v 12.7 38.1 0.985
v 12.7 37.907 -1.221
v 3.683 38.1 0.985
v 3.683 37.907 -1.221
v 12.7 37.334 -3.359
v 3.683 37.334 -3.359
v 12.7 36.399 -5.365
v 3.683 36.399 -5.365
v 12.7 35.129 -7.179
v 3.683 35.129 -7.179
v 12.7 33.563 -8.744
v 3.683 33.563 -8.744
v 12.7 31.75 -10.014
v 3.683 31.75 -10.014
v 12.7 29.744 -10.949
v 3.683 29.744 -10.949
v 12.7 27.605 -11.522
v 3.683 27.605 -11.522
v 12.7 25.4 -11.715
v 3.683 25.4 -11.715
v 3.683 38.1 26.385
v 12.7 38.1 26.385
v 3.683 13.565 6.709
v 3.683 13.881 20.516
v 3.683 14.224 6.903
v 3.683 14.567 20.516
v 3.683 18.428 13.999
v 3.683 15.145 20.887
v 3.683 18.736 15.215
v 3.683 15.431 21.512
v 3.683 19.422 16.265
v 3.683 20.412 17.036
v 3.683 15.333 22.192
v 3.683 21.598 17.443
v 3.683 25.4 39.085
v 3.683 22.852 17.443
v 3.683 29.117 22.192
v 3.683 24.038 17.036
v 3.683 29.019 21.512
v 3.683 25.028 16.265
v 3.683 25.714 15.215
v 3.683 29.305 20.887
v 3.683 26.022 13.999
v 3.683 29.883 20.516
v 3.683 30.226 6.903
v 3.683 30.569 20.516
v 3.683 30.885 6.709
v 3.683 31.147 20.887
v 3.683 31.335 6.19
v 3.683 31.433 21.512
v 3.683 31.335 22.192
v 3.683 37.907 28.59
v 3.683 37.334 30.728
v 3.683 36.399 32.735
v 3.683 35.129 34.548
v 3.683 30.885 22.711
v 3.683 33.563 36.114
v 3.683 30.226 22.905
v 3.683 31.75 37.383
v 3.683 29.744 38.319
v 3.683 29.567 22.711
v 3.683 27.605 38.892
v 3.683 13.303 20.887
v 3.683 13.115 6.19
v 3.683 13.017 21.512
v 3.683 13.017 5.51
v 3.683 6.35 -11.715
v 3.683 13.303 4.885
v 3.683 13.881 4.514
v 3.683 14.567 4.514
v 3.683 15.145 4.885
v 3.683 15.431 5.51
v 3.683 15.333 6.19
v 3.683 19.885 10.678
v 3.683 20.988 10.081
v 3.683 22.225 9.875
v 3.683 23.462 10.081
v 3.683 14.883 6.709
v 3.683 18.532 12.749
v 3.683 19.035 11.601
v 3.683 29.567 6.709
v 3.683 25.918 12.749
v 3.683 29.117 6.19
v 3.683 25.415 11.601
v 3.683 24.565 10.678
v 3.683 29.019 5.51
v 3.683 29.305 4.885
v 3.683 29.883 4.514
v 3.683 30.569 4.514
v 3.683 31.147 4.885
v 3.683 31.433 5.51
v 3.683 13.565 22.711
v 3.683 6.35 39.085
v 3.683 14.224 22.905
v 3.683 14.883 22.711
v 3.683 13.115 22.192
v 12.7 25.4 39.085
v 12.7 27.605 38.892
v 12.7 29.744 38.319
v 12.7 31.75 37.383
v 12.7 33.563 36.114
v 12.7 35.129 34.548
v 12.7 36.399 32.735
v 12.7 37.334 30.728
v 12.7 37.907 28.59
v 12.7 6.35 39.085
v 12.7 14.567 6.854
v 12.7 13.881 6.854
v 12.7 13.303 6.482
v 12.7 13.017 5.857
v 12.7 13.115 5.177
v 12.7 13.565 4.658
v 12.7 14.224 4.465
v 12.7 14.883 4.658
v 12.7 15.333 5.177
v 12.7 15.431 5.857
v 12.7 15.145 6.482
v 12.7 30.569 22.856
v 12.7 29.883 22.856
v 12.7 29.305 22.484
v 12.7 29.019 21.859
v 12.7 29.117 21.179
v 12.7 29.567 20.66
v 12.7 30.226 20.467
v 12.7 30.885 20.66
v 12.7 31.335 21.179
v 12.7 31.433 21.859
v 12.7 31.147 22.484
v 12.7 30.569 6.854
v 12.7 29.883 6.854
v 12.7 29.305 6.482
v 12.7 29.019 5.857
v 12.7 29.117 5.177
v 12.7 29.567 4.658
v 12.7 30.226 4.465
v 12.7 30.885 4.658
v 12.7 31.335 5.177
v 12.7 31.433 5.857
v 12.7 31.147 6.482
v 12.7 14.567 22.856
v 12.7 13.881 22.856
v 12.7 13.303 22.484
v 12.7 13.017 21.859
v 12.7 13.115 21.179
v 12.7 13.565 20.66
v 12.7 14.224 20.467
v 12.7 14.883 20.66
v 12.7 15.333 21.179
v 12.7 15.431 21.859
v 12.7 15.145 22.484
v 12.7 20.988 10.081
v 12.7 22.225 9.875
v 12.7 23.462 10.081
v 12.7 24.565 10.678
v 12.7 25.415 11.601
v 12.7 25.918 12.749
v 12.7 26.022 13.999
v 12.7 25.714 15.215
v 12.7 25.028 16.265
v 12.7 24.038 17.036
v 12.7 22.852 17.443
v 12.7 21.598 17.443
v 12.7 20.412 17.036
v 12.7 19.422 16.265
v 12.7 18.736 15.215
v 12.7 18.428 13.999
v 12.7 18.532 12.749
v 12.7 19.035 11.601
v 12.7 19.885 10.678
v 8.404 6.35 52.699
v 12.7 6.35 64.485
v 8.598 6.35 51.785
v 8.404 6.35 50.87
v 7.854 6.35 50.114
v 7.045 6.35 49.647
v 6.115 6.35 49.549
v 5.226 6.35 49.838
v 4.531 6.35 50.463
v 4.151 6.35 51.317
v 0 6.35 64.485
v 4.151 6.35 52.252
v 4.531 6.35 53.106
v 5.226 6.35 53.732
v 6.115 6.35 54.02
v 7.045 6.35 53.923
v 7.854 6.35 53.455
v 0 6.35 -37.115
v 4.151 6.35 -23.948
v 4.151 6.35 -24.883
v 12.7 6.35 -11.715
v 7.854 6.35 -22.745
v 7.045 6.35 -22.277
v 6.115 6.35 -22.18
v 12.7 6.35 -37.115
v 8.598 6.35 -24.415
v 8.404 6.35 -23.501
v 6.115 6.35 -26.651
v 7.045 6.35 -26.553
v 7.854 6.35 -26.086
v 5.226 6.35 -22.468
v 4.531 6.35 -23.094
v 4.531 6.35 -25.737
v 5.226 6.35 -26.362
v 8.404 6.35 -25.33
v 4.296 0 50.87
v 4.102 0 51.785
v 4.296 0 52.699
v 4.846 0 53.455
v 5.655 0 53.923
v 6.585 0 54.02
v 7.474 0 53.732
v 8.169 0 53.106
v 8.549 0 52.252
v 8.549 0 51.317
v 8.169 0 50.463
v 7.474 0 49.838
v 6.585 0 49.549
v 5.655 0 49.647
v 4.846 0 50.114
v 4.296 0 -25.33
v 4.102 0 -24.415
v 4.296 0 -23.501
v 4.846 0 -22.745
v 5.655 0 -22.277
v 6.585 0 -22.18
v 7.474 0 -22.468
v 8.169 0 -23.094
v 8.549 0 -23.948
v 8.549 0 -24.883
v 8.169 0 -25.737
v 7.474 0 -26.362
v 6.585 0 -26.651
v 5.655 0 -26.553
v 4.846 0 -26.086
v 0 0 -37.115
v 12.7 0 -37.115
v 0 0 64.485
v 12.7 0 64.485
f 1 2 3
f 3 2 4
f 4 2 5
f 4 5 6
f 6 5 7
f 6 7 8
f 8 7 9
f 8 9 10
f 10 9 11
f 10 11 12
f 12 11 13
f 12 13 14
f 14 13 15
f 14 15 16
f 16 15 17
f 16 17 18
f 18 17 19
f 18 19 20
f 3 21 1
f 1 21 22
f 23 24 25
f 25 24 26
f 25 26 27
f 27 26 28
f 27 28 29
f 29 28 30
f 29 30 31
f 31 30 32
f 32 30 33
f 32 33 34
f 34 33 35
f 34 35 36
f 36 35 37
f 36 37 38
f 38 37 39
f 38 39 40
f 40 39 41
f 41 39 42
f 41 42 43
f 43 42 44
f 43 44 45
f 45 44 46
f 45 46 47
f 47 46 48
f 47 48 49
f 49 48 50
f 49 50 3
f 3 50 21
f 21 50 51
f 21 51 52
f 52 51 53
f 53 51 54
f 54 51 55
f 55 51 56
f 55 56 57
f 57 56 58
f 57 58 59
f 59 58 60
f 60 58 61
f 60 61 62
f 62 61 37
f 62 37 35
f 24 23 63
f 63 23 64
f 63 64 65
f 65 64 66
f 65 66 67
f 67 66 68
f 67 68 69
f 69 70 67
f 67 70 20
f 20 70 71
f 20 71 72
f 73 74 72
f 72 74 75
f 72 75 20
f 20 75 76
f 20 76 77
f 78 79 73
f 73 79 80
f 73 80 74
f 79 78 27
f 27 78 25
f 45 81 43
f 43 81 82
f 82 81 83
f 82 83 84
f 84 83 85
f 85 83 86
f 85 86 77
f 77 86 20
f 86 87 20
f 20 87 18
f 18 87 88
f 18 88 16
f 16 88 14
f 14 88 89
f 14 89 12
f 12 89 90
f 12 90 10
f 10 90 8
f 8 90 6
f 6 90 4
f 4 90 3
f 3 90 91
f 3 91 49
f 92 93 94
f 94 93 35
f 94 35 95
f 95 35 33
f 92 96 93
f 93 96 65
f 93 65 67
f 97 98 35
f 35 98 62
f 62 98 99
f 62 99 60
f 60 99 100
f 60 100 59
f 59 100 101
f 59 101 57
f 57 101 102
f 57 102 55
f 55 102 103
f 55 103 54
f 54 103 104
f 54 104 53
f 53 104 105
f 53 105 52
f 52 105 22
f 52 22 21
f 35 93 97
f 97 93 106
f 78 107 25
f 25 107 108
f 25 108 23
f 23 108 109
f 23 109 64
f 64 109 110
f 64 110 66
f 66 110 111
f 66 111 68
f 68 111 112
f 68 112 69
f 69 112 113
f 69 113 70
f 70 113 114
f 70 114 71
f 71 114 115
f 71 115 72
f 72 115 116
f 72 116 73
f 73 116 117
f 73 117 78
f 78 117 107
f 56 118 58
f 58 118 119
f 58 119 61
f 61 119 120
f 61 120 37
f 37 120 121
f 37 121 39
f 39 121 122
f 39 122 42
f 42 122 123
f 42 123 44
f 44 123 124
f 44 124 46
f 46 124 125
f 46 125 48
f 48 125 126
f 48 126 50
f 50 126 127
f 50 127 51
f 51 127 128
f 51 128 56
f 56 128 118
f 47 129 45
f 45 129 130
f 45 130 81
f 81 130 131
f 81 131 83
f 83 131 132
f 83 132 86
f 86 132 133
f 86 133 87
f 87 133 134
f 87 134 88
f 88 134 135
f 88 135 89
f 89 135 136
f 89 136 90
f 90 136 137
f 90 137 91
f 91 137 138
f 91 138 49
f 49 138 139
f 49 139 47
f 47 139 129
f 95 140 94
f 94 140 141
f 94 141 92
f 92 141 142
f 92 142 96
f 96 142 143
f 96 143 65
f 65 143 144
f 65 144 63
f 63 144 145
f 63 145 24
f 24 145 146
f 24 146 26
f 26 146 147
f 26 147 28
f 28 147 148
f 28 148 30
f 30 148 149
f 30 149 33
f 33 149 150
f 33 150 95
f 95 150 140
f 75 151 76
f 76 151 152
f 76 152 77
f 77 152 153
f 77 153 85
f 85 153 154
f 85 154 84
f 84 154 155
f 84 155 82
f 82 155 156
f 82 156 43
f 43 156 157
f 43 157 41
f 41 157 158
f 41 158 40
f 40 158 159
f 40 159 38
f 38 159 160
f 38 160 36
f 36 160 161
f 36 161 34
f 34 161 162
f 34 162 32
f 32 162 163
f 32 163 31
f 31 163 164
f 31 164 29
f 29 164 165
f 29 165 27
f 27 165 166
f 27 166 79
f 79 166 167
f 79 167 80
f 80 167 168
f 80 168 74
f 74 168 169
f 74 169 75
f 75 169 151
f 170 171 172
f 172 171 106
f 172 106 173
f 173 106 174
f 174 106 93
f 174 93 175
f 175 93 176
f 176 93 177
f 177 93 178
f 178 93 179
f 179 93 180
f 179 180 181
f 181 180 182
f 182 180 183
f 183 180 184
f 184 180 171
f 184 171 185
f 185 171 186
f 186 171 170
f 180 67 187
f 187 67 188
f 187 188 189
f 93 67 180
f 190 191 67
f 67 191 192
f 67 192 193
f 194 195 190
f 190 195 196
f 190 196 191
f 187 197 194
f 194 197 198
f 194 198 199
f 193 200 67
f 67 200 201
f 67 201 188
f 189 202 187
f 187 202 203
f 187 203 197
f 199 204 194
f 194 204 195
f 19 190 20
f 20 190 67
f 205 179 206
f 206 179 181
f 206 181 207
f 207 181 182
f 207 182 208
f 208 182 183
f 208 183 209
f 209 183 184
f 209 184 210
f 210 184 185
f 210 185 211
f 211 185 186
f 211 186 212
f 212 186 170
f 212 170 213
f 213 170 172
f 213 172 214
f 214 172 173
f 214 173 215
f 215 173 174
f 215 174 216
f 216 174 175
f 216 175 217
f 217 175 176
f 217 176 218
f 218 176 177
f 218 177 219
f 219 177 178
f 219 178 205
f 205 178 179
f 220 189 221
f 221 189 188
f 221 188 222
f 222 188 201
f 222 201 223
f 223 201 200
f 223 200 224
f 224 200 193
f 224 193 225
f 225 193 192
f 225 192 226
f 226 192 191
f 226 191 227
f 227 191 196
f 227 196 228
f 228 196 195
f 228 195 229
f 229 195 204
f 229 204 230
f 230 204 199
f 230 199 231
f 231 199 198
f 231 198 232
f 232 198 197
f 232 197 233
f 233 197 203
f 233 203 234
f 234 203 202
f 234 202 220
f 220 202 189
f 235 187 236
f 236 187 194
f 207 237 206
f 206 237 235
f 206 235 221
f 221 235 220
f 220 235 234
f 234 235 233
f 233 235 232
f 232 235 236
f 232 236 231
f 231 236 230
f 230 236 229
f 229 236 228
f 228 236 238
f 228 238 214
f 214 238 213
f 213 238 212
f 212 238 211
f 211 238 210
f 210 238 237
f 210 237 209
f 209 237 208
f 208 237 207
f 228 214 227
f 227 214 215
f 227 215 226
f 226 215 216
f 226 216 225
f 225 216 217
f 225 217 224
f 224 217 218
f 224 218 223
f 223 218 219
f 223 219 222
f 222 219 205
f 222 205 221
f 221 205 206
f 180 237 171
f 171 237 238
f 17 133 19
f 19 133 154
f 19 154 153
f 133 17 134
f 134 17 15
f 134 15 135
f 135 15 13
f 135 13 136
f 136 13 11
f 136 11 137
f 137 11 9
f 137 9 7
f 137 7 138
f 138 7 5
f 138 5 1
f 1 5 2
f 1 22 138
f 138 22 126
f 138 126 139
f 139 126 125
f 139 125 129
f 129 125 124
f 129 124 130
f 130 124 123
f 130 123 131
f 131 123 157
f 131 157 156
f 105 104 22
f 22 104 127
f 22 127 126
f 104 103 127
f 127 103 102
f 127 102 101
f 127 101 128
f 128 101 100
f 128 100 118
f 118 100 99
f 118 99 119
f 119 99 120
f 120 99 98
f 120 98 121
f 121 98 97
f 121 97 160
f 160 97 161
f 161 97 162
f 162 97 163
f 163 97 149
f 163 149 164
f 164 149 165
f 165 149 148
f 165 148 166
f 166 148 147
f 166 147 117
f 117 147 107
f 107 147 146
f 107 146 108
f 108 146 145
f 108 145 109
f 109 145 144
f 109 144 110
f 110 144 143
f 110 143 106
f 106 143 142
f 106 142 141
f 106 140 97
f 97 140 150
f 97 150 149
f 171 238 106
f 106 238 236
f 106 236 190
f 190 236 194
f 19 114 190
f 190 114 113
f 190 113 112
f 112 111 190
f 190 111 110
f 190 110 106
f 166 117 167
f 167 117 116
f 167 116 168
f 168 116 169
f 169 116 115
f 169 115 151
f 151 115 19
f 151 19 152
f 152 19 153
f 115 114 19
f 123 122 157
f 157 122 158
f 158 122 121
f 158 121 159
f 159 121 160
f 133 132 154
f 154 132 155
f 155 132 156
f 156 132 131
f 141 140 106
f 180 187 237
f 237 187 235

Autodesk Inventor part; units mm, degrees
ref_plane "YZ Plane" through (0, 0, 0) normal (1, 0, 0) x (0, 1, 0)
ref_plane "XZ Plane" through (0, 0, 0) normal (0, 1, 0) x (-1, 0, 0)
ref_plane "XY Plane" through (0, 0, 0) normal (0, 0, 1) x (1, 0, 0)
sketch "Sketch1" plane through (0, 0, 0) normal (1, 0, 0) x (0, 1, 0)
  line L0 (6.35, 64.4848) -> (0, 64.4848)
  line L1 (0, 64.4848) -> (0, -37.1152)
  line L2 (0, -37.1152) -> (6.35, -37.1152)
  line L3 (38.1, -11.7152) -> (38.1, 39.0848)
  line L4 (38.1, 39.0848) -> (6.35, 39.0848)
  line L5 (38.1, -11.7152) -> (6.35, -11.7152)
  line L6 (6.35, -37.1152) -> (6.35, -11.7152)
  line L7 (6.35, 39.0848) -> (6.35, 64.4848)
  point P0 (0, 0)
  dimension "d1" = 101.6
  dimension "d3" = 25.4
  dimension "d4" = 25.4
extrude "Extrusion1" add sketch "Sketch1" along normal blind 12.7
sketch "Sketch2" plane through (0, 6.35, 64.4848) normal (0, 1, 0) x (1, 0, 0)
  line L0 (0, 0) -> (12.7, 0) projected
  line L1 (12.7, 25.4) -> (12.7, 0) projected
  line L2 (0, 101.6) -> (12.7, 101.6) projected
  line L3 (0, 101.6) -> (0, 76.2) projected
  point P0 (0, 64.4848)
  point P1 (6.35, 12.7)
  point P2 (6.35, 88.9)
  dimension "d7" = 12.7
  dimension "d8" = 6.35
  dimension "d9" = 12.7
  dimension "d10" = 6.35
hole "Hole1" at (6.35, 6.35, 51.7848) at (6.35, 6.35, -24.4152) direction (0, -1, 0) diameter 4.4958 end through all clearance for "Flat Head Machine Screw (82)" size "#8" standard "Ansi Unified Screw Threads"
sketch "Sketch3" plane through (0, 38.1, 39.0848) normal (0, 1, 0) x (1, 0, 0)
  line L0 (-8.738, -5.974) -> (3.683, -5.974)
  line L1 (3.683, -5.974) -> (3.683, 55.8495)
  line L2 (3.683, 55.8495) -> (-8.738, 55.8495)
  line L3 (-8.738, 55.8495) -> (-8.738, -5.974)
  line L4 (0, 50.8) -> (0, 0) projected
  point P0 (0, 39.0848)
  dimension "d18" = 3.683
extrude "Extrusion2" cut sketch "Sketch3" against normal blind 31.75
sketch "Sketch4" plane through (12.7, 0, 0) normal (1, 0, 0) x (0, 0, -1)
  circle A0 centre (-13.6848, 22.225) radius 3.81
  line L0 (11.7152, 38.1) -> (-39.0848, 38.1) projected
  line L1 (11.7152, 6.35) -> (11.7152, 38.1) projected
  point P0 (0, 0)
  dimension "d21" = 15.875
  dimension "d22" = 25.4
  dimension "d25" = 7.62
extrude "Extrusion3" cut sketch "Sketch4" against normal blind 25.4
sketch "Sketch5" plane through (12.7, 0, 0) normal (1, 0, 0) x (0, 0, -1)
  circle A0 centre (-13.6848, 22.225) radius 3.81 projected
  point P0 (0, 0)
  point P1 (-21.6858, 30.226)
  point P2 (-5.6838, 30.226)
  point P3 (-5.6838, 14.224)
  point P4 (-21.6858, 14.224)
  dimension "d26" = 8.001
  dimension "d27" = 8.001
  dimension "d28" = 0
  dimension "d29" = 0
  dimension "d30" = 8.001
  dimension "d31" = 8.001
  dimension "d32" = 0
  dimension "d33" = 0
hole "Hole2" at (12.7, 30.226, 21.6858) at (12.7, 30.226, 5.6838) at (12.7, 14.224, 5.6838) at (12.7, 14.224, 21.6858) direction (-1, 0, 0) diameter 2.4384 end through all clearance for "Flat Head Machine Screw (82)" size "#2" standard "Ansi Unified Screw Threads"
fillet "Fillet1" radius 12.7 2 edges at (8.1915, 38.1, 39.0848) (8.1915, 38.1, -11.7152)
properties part number "SliderMotorMount"
